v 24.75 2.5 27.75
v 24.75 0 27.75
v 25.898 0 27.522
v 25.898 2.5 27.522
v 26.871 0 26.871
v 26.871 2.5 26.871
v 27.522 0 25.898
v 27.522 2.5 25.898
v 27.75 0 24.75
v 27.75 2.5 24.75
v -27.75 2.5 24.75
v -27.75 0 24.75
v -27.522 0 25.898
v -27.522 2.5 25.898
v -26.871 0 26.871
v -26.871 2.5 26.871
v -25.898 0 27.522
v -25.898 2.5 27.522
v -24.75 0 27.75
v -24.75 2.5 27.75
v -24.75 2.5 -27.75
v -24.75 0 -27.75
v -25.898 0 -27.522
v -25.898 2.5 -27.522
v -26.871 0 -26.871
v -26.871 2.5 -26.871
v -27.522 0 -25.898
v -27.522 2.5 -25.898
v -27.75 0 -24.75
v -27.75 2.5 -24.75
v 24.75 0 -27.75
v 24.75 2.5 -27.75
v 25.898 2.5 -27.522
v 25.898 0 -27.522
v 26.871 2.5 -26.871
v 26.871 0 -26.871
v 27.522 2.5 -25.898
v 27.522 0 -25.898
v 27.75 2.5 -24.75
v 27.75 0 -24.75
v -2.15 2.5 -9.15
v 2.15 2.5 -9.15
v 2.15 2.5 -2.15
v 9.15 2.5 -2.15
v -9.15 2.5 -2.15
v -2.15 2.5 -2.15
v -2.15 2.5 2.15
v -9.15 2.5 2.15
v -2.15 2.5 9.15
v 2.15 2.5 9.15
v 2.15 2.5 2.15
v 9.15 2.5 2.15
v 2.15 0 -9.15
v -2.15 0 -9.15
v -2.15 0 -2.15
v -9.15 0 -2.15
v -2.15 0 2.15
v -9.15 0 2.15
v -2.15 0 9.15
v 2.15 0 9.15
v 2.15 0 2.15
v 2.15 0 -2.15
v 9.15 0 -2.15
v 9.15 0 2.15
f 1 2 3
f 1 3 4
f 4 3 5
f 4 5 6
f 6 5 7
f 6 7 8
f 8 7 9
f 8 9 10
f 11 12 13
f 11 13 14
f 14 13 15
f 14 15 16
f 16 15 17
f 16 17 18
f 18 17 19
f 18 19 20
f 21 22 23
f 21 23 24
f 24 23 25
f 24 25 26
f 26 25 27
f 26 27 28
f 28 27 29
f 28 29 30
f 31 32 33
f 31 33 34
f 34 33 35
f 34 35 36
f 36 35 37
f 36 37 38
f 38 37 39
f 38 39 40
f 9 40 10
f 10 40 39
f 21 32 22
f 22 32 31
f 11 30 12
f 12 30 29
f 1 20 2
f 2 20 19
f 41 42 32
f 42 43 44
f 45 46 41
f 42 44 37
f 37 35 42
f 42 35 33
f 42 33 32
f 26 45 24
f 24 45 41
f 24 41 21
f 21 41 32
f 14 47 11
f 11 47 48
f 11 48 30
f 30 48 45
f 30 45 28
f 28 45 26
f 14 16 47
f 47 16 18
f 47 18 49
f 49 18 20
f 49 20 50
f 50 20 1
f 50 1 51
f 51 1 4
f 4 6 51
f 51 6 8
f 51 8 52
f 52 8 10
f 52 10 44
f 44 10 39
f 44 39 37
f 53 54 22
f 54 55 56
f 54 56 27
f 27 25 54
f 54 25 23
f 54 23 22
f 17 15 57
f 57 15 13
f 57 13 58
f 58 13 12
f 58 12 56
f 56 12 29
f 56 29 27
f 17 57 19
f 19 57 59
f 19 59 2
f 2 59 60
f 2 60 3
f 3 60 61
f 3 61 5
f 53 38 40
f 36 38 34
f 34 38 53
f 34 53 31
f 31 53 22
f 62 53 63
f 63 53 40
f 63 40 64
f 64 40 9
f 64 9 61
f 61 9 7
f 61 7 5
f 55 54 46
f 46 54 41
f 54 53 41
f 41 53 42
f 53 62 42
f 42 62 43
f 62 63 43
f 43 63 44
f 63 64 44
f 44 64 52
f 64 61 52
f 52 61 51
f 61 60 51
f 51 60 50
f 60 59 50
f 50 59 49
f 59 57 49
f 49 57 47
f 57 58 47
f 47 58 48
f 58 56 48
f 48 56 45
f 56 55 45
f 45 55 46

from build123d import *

# Parameters (mm, degrees)
ESBO_O1_W                = 55.5
ESBO_O1_H                = 55.5
RESSALTO_EXTRUS_O1_DEPTH = 2.5
FILETE1_R                = 3
FILETE2_R                = 3
FILETE3_R                = 3
FILETE4_R                = 3
ESBO_O3_W                = 4.3
ESBO_O3_H                = 7
ESBO_O3_W_2              = 7
ESBO_O3_H_2              = 4.3
CORTE_EXTRUS_O1_DEPTH    = 40.323974875


with BuildPart() as part:
    # Esboço1 → Ressalto-extrusão1 (new body)
    with BuildSketch(Plane(origin=(0, 0, 0), x_dir=(1, 0, 0), z_dir=(0, 1, 0))):
        Rectangle(ESBO_O1_W, ESBO_O1_H)
    extrude(amount=RESSALTO_EXTRUS_O1_DEPTH)

    # Filete1
    filete1_edges = [part.edges().sort_by_distance(p)[0] for p in [
        (27.75, 1.25, -27.75),
    ]]
    fillet(filete1_edges, radius=FILETE1_R)

    # Filete2
    filete2_edges = [part.edges().sort_by_distance(p)[0] for p in [
        (-27.75, 1.25, -27.75),
    ]]
    fillet(filete2_edges, radius=FILETE2_R)

    # Filete3
    filete3_edges = [part.edges().sort_by_distance(p)[0] for p in [
        (-27.75, 1.25, 27.75),
    ]]
    fillet(filete3_edges, radius=FILETE3_R)

    # Filete4
    filete4_edges = [part.edges().sort_by_distance(p)[0] for p in [
        (27.75, 1.25, 27.75),
    ]]
    fillet(filete4_edges, radius=FILETE4_R)

    # Esboço3 → Corte-extrusão1 (cut, through all)
    with BuildSketch(Plane(origin=(0, 2.5, 0), x_dir=(1, 0, 0), z_dir=(0, 1, 0))):
        with Locations((0, 5.65)):
            Rectangle(ESBO_O3_W, ESBO_O3_H)
        with Locations((-5.65, 0)):
            Rectangle(ESBO_O3_W_2, ESBO_O3_H_2)
        with Locations((0, -5.65)):
            Rectangle(ESBO_O3_W, ESBO_O3_H)
        Rectangle(ESBO_O3_W, ESBO_O3_H_2)
        with Locations((5.65, 0)):
            Rectangle(ESBO_O3_W_2, ESBO_O3_H_2)
    extrude(amount=-CORTE_EXTRUS_O1_DEPTH, mode=Mode.SUBTRACT)


solid = part.part
